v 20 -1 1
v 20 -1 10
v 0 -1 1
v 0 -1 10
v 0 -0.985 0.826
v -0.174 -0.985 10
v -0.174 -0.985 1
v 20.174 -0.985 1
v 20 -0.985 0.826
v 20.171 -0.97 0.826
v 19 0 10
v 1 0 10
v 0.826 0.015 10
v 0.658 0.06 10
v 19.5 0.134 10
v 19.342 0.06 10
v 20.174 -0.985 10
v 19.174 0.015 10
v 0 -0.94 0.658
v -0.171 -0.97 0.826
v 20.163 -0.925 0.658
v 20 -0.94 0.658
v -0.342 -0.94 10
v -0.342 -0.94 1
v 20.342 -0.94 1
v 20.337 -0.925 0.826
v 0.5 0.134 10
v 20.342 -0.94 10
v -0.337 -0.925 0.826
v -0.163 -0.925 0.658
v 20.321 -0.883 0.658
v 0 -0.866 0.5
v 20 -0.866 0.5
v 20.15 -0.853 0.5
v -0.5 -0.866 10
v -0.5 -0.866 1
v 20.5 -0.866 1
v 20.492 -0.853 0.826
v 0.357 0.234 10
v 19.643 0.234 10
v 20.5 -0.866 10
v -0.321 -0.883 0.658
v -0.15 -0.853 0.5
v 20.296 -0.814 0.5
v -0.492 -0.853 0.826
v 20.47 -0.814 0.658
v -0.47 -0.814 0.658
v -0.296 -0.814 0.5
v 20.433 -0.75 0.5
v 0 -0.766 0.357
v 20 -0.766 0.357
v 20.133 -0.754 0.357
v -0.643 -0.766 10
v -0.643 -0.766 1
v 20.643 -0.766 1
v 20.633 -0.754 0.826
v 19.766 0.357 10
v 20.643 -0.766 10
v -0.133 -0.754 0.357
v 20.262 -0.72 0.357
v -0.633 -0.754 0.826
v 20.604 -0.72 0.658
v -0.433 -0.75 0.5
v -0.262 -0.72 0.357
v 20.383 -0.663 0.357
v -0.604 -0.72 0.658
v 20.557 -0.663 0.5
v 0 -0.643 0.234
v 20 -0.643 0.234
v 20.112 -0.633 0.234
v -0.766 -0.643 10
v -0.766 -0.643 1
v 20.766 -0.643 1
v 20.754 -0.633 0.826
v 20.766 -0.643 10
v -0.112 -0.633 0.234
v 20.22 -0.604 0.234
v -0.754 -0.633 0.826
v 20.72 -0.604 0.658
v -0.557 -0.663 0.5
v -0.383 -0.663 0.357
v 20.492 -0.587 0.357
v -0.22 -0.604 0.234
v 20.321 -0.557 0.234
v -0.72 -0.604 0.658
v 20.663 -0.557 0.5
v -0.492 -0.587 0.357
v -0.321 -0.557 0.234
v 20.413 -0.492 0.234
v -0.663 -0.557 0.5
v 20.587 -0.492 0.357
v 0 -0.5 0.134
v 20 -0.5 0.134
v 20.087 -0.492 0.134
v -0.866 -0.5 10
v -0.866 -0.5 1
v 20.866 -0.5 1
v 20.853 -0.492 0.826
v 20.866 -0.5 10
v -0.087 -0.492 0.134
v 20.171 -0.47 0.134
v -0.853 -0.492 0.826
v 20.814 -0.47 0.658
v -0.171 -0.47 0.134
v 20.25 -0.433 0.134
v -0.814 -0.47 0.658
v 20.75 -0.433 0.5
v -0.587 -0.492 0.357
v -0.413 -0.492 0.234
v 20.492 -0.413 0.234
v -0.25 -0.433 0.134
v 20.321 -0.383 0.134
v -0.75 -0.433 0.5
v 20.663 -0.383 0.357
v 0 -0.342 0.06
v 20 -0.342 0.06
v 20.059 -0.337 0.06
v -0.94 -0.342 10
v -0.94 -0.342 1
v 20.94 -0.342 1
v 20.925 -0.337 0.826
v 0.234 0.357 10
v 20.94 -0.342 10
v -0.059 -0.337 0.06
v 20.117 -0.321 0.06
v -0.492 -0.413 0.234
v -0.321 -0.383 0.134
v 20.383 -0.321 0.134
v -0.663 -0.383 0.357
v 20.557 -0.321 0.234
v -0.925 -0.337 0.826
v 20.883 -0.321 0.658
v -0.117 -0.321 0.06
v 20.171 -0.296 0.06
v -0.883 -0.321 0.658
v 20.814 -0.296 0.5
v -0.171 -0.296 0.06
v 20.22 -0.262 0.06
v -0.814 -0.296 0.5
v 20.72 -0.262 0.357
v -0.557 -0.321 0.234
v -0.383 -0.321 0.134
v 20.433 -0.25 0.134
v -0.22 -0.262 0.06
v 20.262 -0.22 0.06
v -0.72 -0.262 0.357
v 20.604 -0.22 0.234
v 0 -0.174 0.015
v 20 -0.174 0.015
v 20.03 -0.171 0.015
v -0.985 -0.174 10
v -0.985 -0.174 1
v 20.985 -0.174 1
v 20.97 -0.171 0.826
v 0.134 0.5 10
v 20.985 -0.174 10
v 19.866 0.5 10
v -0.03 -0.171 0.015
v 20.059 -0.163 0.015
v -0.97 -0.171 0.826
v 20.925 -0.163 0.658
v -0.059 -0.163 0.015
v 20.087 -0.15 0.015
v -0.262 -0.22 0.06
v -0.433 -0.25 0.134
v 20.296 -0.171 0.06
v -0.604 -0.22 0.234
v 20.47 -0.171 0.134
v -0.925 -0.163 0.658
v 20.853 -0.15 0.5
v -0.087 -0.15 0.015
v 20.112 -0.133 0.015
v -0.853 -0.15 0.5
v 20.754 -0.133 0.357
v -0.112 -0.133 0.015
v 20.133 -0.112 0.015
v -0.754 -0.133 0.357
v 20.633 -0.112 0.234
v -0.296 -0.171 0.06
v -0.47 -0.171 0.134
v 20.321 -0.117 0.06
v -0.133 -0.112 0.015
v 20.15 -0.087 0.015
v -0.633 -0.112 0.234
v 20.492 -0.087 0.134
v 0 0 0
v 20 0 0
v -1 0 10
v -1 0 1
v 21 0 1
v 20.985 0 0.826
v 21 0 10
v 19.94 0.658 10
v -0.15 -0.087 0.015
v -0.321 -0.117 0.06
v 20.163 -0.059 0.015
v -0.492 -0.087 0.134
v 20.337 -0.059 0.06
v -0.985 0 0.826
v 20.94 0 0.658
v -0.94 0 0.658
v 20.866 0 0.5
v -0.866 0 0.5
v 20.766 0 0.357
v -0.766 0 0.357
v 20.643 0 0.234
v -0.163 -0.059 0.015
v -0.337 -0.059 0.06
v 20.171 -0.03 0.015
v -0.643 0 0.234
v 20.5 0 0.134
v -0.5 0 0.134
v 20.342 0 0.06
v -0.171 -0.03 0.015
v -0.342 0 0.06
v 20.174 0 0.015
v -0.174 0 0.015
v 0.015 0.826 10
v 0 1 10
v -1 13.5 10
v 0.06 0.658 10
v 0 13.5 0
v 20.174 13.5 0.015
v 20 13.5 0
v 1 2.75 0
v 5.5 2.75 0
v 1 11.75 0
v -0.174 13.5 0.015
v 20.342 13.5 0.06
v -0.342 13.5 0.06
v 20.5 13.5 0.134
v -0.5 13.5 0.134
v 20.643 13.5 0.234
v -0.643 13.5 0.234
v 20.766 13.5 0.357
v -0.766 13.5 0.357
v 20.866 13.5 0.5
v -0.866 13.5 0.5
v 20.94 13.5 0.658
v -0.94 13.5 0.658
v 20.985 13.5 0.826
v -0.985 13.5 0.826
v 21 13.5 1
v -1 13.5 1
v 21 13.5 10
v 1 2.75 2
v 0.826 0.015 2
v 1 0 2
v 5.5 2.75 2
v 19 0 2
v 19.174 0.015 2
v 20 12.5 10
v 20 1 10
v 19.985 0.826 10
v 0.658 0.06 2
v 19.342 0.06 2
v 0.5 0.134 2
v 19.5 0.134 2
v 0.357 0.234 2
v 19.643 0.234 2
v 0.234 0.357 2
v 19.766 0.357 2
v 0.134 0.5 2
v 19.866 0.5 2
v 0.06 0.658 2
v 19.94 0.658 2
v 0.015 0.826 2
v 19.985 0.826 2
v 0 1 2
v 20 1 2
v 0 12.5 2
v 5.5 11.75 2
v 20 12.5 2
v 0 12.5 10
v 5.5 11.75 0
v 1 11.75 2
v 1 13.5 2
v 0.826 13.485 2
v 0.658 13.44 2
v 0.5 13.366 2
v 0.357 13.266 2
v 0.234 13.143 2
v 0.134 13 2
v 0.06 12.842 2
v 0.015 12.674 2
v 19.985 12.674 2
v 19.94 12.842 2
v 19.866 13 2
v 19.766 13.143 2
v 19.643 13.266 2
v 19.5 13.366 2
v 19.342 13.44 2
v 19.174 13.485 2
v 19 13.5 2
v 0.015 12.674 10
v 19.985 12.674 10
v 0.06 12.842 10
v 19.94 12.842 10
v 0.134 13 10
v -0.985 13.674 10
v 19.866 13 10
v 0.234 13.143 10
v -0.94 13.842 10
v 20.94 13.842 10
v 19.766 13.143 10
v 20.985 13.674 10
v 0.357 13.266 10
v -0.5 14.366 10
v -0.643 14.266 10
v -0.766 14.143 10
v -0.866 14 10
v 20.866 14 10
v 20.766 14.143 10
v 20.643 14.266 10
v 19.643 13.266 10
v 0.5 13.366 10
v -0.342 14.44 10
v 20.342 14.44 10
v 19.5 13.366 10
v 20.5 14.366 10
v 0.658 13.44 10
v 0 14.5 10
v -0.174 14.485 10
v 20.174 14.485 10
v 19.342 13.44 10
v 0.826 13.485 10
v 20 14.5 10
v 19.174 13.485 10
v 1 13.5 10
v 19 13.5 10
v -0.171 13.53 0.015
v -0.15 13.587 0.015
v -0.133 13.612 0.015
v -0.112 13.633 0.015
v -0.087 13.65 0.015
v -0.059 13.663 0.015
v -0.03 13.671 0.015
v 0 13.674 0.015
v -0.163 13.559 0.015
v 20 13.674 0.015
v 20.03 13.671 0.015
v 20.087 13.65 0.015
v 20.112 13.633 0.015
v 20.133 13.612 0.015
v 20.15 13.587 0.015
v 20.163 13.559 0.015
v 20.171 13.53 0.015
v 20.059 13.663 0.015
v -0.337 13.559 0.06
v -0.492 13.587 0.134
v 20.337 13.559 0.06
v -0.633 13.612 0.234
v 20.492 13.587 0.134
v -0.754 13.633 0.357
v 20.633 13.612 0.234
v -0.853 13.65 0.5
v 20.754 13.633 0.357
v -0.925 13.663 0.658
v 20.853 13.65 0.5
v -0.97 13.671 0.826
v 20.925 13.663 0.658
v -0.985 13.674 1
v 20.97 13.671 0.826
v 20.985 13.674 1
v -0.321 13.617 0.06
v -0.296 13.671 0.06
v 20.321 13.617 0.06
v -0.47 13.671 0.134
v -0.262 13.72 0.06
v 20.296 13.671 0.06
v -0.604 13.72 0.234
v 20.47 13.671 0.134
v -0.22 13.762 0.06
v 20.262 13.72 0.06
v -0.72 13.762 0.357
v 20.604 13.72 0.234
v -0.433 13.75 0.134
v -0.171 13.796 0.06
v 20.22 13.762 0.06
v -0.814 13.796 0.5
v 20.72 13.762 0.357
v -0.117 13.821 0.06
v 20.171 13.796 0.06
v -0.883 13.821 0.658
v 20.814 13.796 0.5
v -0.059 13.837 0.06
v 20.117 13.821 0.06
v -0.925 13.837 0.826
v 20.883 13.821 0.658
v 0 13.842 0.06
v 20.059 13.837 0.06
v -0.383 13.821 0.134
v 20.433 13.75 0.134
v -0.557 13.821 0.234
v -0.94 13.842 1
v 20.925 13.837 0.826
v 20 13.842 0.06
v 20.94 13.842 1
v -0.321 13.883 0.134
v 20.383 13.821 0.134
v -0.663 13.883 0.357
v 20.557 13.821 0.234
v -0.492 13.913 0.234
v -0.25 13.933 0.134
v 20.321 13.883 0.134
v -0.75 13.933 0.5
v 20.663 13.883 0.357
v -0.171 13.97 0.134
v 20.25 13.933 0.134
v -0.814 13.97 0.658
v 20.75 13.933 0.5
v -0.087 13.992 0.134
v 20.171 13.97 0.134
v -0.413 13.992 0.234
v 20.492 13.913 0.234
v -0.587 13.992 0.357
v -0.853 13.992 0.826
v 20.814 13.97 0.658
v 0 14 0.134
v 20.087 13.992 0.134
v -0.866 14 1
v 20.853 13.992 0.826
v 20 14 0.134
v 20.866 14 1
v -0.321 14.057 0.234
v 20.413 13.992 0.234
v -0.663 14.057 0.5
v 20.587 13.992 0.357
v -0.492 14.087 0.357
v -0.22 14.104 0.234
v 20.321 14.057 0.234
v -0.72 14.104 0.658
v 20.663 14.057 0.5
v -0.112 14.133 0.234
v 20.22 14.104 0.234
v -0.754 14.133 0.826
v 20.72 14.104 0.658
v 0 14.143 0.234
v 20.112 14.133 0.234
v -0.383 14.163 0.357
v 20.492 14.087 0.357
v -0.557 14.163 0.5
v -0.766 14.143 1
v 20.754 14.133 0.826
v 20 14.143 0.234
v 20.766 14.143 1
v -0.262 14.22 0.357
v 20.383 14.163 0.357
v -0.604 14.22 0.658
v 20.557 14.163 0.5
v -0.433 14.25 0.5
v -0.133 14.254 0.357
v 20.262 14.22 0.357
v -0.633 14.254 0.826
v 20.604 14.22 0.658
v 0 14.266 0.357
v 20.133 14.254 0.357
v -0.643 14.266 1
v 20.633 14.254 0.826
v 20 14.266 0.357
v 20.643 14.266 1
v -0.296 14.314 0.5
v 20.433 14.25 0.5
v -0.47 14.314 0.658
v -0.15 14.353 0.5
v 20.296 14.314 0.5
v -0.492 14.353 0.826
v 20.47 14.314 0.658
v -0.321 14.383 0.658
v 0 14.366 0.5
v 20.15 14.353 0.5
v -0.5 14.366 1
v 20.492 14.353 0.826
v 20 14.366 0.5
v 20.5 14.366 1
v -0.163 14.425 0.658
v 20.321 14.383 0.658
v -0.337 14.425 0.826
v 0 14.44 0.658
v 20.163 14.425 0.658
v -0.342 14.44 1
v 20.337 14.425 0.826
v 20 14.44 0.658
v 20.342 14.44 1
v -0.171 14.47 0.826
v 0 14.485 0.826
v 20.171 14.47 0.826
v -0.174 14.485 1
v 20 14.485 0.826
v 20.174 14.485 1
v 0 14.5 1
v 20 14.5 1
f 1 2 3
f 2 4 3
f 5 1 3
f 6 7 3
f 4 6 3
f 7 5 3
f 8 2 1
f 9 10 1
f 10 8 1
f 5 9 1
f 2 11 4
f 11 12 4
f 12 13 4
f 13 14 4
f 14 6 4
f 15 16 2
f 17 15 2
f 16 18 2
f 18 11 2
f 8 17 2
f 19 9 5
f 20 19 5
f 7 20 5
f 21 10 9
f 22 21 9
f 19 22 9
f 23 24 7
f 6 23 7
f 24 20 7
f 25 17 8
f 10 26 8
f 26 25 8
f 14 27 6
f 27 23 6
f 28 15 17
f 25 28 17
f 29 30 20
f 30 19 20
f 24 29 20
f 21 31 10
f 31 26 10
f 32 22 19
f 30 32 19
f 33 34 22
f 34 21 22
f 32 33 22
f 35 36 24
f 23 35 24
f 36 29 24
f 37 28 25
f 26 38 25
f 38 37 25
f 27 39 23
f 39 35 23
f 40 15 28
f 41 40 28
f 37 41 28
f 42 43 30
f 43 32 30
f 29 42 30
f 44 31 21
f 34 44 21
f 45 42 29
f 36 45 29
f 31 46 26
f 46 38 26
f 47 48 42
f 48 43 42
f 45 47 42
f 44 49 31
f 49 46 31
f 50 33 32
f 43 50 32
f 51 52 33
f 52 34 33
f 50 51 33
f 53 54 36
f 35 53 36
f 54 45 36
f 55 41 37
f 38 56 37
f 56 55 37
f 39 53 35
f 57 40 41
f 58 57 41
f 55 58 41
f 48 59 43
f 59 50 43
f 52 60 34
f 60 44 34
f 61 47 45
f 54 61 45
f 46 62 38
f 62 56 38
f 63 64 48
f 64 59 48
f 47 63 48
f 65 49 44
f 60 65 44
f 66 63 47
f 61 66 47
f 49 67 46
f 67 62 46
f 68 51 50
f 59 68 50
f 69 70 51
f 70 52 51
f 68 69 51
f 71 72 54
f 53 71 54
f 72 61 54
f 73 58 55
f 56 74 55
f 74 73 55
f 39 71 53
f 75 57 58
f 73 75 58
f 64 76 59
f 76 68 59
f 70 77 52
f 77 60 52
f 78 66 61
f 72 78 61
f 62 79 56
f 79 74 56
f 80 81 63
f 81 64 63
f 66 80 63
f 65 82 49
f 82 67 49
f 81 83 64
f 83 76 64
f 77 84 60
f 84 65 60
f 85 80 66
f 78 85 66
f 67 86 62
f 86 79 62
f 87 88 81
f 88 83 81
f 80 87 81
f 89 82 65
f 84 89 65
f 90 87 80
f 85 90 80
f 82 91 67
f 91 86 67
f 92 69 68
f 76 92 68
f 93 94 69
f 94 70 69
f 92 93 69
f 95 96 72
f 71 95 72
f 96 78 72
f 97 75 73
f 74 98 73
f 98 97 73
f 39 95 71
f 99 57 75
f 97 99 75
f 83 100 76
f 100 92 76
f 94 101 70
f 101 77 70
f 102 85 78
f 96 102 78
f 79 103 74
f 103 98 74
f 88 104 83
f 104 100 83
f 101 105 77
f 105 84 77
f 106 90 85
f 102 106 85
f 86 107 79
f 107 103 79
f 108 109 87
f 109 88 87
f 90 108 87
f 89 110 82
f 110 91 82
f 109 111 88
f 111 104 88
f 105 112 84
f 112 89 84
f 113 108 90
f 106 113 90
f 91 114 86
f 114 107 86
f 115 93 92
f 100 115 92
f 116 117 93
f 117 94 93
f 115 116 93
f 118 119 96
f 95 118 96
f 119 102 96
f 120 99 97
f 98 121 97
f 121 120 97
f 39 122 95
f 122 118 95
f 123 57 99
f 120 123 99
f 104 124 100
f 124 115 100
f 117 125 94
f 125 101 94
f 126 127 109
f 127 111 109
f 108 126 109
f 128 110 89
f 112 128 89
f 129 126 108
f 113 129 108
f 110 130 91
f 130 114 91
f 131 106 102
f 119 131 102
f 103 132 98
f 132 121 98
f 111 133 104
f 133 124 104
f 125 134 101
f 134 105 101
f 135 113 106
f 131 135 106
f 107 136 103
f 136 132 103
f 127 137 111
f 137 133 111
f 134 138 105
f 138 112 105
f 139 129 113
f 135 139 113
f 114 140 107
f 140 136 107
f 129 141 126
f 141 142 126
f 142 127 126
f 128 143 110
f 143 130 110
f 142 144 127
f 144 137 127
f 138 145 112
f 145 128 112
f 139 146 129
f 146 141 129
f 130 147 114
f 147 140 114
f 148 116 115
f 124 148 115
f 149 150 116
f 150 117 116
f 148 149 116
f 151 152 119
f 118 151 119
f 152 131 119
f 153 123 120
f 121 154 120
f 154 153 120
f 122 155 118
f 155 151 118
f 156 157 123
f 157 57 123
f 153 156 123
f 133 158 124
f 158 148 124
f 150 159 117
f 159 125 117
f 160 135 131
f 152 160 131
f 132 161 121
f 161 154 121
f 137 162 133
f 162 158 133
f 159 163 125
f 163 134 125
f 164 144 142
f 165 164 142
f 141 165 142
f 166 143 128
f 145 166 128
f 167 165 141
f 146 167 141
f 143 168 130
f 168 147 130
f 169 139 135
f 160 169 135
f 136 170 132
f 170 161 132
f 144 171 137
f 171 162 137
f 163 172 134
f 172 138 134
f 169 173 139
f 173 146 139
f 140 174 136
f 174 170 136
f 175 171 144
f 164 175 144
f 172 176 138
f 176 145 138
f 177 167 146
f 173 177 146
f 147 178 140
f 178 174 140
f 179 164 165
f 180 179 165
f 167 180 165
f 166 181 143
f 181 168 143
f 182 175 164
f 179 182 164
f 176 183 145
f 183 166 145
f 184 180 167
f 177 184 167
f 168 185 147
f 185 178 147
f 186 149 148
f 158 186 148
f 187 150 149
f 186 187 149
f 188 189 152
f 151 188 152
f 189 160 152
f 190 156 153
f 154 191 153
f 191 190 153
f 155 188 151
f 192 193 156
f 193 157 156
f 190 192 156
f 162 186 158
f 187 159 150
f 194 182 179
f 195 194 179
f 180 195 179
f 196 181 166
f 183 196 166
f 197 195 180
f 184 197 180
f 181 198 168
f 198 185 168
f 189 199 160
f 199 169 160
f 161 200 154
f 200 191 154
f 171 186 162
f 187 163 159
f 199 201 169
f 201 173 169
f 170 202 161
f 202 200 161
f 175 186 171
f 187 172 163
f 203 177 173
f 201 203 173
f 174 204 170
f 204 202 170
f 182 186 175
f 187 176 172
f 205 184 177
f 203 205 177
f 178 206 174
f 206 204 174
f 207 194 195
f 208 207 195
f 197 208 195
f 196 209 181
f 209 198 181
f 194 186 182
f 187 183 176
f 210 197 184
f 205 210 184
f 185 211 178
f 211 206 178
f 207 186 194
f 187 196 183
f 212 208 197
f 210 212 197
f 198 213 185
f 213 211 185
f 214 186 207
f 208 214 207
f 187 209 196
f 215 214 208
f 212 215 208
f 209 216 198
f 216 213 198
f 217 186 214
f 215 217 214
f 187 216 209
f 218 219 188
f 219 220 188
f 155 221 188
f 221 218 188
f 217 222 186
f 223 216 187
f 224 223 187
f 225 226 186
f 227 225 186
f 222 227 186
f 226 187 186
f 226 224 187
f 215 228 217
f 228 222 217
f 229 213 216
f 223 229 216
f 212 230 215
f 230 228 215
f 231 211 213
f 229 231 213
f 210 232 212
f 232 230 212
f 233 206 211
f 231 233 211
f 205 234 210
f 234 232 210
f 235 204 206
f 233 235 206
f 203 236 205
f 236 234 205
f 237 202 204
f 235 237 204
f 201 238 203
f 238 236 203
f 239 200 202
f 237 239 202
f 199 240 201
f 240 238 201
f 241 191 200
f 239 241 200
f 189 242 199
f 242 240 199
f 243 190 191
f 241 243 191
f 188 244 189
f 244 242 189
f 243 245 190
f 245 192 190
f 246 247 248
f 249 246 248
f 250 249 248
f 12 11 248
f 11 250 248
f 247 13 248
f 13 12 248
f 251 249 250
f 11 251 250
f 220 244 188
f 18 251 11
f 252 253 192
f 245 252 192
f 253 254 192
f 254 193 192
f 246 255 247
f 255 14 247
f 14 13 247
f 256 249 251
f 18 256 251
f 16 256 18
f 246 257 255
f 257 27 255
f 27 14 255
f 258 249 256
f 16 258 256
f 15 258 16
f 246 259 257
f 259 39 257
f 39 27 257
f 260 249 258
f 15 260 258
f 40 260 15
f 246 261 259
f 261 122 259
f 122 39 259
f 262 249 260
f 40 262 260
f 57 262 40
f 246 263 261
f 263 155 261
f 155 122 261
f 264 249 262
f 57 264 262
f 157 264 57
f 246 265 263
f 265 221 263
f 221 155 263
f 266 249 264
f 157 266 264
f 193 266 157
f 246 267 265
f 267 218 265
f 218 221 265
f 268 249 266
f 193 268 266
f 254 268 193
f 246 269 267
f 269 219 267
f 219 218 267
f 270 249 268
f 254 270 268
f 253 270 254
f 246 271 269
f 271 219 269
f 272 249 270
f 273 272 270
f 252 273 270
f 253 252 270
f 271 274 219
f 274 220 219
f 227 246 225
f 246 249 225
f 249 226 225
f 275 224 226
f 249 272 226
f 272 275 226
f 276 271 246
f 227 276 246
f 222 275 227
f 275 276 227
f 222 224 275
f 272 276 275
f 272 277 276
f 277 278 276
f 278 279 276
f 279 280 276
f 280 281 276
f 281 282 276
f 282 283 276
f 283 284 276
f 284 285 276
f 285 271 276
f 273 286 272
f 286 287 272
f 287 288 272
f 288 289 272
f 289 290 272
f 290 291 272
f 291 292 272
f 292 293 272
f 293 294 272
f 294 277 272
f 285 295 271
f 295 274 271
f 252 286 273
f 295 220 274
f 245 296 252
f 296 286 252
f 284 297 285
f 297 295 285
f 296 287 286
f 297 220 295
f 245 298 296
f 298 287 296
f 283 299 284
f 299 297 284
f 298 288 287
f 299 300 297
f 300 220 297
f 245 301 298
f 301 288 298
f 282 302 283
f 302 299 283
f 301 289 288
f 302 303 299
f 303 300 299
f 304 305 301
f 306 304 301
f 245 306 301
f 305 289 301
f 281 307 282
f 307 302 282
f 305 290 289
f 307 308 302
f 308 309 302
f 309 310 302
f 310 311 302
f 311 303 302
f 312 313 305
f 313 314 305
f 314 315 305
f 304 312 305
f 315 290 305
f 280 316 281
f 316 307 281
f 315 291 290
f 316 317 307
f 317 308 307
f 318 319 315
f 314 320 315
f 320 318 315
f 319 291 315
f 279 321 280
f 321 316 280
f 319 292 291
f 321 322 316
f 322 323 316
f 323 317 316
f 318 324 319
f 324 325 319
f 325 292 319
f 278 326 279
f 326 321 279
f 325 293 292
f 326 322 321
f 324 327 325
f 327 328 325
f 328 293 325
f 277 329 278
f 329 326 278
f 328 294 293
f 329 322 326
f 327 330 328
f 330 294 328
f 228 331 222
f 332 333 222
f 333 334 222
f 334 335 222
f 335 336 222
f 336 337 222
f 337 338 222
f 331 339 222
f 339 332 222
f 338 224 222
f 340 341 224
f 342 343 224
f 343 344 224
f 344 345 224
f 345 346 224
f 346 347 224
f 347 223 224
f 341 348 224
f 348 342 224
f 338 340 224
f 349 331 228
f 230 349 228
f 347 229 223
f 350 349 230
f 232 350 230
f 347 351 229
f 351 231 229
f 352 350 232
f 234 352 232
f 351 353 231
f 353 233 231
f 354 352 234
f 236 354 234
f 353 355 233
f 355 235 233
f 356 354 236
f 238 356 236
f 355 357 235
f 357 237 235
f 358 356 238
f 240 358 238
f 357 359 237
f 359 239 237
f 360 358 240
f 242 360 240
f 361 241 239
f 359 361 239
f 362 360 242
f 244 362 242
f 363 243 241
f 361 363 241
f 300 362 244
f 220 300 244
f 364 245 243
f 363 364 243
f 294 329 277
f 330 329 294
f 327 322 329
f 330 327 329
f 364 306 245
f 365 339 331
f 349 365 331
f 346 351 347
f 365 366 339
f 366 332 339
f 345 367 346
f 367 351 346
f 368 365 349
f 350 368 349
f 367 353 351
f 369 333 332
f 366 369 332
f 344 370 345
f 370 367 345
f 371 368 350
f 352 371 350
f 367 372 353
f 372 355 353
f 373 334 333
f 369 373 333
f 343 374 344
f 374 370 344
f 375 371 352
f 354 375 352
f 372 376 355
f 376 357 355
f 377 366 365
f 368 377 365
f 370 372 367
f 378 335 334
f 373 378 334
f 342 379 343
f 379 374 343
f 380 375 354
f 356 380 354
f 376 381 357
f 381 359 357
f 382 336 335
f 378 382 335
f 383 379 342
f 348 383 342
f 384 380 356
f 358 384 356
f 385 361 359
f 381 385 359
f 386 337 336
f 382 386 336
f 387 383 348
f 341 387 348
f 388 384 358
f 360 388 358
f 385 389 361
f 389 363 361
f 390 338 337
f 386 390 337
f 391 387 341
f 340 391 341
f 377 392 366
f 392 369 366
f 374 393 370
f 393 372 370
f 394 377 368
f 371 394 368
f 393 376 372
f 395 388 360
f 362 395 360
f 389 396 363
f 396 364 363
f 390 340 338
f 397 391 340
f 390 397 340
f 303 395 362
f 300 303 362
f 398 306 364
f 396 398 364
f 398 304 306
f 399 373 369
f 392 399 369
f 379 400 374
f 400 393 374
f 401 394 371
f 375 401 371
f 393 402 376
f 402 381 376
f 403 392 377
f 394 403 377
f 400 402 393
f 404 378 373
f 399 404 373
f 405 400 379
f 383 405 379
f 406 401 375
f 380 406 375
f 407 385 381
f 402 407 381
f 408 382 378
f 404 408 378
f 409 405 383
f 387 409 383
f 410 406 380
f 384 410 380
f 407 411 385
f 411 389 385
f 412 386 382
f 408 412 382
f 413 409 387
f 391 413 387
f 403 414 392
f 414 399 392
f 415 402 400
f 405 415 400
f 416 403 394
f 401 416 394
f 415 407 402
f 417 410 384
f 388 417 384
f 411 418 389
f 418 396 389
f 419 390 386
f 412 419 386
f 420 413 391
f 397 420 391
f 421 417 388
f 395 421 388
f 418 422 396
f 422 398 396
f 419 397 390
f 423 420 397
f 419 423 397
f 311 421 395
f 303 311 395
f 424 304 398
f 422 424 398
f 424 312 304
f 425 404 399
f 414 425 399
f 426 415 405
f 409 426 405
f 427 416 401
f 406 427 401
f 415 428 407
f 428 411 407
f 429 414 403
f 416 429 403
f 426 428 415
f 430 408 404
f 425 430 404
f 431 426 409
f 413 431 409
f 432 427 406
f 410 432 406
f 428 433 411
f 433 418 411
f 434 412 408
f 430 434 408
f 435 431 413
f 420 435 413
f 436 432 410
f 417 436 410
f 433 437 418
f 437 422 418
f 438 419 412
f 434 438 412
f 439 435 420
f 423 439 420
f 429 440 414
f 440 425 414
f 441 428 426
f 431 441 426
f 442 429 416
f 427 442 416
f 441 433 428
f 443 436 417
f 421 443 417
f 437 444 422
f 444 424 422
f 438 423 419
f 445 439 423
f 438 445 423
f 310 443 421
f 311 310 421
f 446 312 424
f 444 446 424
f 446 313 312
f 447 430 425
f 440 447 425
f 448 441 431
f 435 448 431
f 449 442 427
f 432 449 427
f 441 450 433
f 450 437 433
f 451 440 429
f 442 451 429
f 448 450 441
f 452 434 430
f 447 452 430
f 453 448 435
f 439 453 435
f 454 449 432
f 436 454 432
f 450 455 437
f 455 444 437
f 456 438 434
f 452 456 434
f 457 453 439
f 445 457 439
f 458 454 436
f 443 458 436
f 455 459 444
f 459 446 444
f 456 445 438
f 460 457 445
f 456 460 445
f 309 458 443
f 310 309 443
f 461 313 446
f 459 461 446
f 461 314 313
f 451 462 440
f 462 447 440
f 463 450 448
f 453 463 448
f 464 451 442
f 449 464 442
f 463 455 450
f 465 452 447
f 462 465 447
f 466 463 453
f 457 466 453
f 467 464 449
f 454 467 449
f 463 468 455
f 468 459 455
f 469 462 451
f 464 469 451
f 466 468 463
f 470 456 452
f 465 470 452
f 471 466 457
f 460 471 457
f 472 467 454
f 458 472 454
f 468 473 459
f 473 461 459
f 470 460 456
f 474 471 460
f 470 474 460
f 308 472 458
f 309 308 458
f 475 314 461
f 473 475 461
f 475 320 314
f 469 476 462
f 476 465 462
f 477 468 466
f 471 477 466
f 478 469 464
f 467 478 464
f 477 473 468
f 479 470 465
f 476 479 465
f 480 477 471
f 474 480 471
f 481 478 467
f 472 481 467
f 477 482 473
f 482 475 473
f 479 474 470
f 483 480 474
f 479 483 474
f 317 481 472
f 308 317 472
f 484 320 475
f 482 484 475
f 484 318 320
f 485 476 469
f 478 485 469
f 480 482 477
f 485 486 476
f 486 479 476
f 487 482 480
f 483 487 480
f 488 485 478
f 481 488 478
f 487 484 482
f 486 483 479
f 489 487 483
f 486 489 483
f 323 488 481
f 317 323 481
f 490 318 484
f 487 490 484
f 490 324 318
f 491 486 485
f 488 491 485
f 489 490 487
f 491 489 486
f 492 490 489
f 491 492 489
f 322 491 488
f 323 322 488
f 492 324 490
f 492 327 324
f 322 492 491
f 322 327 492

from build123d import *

# Parameters (mm, degrees)
ESQUISSE1_W             = 20
ESQUISSE1_H             = 13.5
BOSS_EXTRU_1_DEPTH      = 2
ESQUISSE1_2_W           = 22
ESQUISSE1_2_H           = 15.5
ESQUISSE1_2_W_2         = 20
ESQUISSE1_2_H_2         = 13.5
EXTRU_MINCE1_DEPTH      = 10
ESQUISSE2_W             = 4.5
ESQUISSE2_H             = 9
ENL_V_MAT_EXTRU_1_DEPTH = 10
CONG_1_R                = 1
CONG_2_R                = 1


with BuildPart() as part:
    # Esquisse1 → Boss.-Extru.1 (new body)
    with BuildSketch(Plane.XY):
        with Locations((10, 6.75)):
            Rectangle(ESQUISSE1_W, ESQUISSE1_H)
    extrude(amount=BOSS_EXTRU_1_DEPTH)

    # Esquisse1<2> → Extru.-Mince1 (add)
    with BuildSketch(Plane.XY):
        with Locations((10, 6.75)):
            Rectangle(ESQUISSE1_2_W, ESQUISSE1_2_H)
        with Locations((10, 6.75)):
            Rectangle(ESQUISSE1_2_W_2, ESQUISSE1_2_H_2, mode=Mode.SUBTRACT)
    extrude(amount=EXTRU_MINCE1_DEPTH)

    # Esquisse2 → Enlèv. mat.-Extru.1 (cut)
    with BuildSketch(Plane.XY.offset(2)):
        with Locations((3.25, 7.25)):
            Rectangle(ESQUISSE2_W, ESQUISSE2_H)
    extrude(amount=-ENL_V_MAT_EXTRU_1_DEPTH, mode=Mode.SUBTRACT)

    # Congé1
    cong_1_edges = [part.edges().sort_by_distance(p)[0] for p in [
        (0, 0, 6),
        (20, 0, 6),
        (20, 13.5, 6),
        (0, 13.5, 6),
        (-1, 14.5, 5),
        (-1, -1, 5),
        (21, -1, 5),
        (21, 14.5, 5),
    ]]
    fillet(cong_1_edges, radius=CONG_1_R)

    # Congé2
    cong_2_edges = [part.edges().sort_by_distance(p)[0] for p in [
        (10, -1, 0),
        (-1, 6.75, 0),
        (10, 14.5, 0),
        (21, 6.75, 0),
        (20.707106781, 14.207106781, 0),
        (20.707106781, -0.707106781, 0),
        (-0.707106781, 14.207106781, 0),
        (-0.7071067811865479, -0.7071067811865458, 0),
    ]]
    fillet(cong_2_edges, radius=CONG_2_R)


solid = part.part
